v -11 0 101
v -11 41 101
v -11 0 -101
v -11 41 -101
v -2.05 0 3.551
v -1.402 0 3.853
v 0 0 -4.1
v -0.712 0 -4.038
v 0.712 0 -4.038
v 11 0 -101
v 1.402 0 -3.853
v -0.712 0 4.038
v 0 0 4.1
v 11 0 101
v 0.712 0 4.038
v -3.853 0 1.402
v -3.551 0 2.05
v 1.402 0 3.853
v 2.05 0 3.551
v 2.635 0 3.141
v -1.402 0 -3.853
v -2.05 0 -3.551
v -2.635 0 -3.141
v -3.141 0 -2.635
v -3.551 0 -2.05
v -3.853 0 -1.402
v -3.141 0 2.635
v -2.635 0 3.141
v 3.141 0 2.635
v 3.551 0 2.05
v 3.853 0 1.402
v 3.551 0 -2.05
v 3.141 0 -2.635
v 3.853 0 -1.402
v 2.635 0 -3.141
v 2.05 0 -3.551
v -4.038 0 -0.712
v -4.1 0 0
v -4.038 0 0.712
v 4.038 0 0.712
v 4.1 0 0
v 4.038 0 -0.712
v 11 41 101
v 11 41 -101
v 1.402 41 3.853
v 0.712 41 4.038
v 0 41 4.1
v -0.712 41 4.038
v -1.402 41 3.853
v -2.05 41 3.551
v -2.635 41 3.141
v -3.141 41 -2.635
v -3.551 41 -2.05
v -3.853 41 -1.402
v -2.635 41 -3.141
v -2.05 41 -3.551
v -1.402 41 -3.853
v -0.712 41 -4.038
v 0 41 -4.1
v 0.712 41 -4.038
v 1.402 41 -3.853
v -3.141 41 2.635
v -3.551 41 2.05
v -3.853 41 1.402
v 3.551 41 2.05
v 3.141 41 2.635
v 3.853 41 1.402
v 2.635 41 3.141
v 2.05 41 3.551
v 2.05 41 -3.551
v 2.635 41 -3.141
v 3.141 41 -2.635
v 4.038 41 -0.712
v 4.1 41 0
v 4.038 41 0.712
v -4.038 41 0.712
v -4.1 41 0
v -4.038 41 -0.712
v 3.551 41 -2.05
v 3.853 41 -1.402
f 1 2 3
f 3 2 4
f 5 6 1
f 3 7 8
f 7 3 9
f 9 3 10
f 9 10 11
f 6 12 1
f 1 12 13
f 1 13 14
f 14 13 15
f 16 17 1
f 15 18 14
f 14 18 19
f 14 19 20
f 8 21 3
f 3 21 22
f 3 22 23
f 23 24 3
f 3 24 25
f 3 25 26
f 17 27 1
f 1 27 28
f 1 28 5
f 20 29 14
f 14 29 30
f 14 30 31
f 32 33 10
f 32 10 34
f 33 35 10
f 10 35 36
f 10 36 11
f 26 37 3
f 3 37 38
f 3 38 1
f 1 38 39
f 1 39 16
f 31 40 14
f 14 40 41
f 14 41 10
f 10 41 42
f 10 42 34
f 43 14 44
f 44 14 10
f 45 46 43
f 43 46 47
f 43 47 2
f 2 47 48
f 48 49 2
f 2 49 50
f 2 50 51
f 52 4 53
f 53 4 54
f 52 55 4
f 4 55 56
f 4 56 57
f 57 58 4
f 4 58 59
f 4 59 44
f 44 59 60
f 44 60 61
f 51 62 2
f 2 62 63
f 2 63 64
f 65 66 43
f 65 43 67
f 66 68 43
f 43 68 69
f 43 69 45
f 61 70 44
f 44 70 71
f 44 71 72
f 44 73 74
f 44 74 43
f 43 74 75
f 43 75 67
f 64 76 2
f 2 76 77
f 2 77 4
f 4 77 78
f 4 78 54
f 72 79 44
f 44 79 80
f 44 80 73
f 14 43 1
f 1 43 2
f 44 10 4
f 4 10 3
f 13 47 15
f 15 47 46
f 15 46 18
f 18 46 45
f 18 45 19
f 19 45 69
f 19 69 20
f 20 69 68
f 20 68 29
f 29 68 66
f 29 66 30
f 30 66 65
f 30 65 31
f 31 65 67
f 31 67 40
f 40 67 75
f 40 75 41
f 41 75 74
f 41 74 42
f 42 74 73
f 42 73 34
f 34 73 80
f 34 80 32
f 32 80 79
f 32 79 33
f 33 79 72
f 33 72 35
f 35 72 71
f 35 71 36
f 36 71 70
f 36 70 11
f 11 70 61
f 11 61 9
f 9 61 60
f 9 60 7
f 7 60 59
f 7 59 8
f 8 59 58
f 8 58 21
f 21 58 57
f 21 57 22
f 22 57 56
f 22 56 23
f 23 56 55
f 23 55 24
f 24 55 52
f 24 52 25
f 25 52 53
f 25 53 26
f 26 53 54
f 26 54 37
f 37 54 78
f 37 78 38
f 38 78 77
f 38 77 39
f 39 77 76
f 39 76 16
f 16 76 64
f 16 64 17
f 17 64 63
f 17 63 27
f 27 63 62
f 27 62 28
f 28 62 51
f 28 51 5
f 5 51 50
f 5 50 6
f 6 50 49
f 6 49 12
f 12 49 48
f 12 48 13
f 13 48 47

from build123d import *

# Parameters (mm, degrees)
SKETCH1_W           = 22
SKETCH1_H           = 41
BOSS_EXTRUDE1_DEPTH = 101
SKETCH2_R           = 4.1
CUT_EXTRUDE1_DEPTH  = 46


with BuildPart() as part:
    # Sketch1 → Boss-Extrude1 (new, symmetric)
    with BuildSketch(Plane.XY):
        with Locations((0, 20.5)):
            Rectangle(SKETCH1_W, SKETCH1_H)
    extrude(amount=BOSS_EXTRUDE1_DEPTH, both=True)

    # Sketch2 → Cut-Extrude1 (cut, symmetric)
    with BuildSketch(Plane(origin=(0, 0, 0), x_dir=(1, 0, 0), z_dir=(0, 1, 0))):
        with Locations(Location((0, 0, 0), (0, 0, 270))):
            Circle(SKETCH2_R)
    extrude(amount=CUT_EXTRUDE1_DEPTH, both=True, mode=Mode.SUBTRACT)


solid = part.part
